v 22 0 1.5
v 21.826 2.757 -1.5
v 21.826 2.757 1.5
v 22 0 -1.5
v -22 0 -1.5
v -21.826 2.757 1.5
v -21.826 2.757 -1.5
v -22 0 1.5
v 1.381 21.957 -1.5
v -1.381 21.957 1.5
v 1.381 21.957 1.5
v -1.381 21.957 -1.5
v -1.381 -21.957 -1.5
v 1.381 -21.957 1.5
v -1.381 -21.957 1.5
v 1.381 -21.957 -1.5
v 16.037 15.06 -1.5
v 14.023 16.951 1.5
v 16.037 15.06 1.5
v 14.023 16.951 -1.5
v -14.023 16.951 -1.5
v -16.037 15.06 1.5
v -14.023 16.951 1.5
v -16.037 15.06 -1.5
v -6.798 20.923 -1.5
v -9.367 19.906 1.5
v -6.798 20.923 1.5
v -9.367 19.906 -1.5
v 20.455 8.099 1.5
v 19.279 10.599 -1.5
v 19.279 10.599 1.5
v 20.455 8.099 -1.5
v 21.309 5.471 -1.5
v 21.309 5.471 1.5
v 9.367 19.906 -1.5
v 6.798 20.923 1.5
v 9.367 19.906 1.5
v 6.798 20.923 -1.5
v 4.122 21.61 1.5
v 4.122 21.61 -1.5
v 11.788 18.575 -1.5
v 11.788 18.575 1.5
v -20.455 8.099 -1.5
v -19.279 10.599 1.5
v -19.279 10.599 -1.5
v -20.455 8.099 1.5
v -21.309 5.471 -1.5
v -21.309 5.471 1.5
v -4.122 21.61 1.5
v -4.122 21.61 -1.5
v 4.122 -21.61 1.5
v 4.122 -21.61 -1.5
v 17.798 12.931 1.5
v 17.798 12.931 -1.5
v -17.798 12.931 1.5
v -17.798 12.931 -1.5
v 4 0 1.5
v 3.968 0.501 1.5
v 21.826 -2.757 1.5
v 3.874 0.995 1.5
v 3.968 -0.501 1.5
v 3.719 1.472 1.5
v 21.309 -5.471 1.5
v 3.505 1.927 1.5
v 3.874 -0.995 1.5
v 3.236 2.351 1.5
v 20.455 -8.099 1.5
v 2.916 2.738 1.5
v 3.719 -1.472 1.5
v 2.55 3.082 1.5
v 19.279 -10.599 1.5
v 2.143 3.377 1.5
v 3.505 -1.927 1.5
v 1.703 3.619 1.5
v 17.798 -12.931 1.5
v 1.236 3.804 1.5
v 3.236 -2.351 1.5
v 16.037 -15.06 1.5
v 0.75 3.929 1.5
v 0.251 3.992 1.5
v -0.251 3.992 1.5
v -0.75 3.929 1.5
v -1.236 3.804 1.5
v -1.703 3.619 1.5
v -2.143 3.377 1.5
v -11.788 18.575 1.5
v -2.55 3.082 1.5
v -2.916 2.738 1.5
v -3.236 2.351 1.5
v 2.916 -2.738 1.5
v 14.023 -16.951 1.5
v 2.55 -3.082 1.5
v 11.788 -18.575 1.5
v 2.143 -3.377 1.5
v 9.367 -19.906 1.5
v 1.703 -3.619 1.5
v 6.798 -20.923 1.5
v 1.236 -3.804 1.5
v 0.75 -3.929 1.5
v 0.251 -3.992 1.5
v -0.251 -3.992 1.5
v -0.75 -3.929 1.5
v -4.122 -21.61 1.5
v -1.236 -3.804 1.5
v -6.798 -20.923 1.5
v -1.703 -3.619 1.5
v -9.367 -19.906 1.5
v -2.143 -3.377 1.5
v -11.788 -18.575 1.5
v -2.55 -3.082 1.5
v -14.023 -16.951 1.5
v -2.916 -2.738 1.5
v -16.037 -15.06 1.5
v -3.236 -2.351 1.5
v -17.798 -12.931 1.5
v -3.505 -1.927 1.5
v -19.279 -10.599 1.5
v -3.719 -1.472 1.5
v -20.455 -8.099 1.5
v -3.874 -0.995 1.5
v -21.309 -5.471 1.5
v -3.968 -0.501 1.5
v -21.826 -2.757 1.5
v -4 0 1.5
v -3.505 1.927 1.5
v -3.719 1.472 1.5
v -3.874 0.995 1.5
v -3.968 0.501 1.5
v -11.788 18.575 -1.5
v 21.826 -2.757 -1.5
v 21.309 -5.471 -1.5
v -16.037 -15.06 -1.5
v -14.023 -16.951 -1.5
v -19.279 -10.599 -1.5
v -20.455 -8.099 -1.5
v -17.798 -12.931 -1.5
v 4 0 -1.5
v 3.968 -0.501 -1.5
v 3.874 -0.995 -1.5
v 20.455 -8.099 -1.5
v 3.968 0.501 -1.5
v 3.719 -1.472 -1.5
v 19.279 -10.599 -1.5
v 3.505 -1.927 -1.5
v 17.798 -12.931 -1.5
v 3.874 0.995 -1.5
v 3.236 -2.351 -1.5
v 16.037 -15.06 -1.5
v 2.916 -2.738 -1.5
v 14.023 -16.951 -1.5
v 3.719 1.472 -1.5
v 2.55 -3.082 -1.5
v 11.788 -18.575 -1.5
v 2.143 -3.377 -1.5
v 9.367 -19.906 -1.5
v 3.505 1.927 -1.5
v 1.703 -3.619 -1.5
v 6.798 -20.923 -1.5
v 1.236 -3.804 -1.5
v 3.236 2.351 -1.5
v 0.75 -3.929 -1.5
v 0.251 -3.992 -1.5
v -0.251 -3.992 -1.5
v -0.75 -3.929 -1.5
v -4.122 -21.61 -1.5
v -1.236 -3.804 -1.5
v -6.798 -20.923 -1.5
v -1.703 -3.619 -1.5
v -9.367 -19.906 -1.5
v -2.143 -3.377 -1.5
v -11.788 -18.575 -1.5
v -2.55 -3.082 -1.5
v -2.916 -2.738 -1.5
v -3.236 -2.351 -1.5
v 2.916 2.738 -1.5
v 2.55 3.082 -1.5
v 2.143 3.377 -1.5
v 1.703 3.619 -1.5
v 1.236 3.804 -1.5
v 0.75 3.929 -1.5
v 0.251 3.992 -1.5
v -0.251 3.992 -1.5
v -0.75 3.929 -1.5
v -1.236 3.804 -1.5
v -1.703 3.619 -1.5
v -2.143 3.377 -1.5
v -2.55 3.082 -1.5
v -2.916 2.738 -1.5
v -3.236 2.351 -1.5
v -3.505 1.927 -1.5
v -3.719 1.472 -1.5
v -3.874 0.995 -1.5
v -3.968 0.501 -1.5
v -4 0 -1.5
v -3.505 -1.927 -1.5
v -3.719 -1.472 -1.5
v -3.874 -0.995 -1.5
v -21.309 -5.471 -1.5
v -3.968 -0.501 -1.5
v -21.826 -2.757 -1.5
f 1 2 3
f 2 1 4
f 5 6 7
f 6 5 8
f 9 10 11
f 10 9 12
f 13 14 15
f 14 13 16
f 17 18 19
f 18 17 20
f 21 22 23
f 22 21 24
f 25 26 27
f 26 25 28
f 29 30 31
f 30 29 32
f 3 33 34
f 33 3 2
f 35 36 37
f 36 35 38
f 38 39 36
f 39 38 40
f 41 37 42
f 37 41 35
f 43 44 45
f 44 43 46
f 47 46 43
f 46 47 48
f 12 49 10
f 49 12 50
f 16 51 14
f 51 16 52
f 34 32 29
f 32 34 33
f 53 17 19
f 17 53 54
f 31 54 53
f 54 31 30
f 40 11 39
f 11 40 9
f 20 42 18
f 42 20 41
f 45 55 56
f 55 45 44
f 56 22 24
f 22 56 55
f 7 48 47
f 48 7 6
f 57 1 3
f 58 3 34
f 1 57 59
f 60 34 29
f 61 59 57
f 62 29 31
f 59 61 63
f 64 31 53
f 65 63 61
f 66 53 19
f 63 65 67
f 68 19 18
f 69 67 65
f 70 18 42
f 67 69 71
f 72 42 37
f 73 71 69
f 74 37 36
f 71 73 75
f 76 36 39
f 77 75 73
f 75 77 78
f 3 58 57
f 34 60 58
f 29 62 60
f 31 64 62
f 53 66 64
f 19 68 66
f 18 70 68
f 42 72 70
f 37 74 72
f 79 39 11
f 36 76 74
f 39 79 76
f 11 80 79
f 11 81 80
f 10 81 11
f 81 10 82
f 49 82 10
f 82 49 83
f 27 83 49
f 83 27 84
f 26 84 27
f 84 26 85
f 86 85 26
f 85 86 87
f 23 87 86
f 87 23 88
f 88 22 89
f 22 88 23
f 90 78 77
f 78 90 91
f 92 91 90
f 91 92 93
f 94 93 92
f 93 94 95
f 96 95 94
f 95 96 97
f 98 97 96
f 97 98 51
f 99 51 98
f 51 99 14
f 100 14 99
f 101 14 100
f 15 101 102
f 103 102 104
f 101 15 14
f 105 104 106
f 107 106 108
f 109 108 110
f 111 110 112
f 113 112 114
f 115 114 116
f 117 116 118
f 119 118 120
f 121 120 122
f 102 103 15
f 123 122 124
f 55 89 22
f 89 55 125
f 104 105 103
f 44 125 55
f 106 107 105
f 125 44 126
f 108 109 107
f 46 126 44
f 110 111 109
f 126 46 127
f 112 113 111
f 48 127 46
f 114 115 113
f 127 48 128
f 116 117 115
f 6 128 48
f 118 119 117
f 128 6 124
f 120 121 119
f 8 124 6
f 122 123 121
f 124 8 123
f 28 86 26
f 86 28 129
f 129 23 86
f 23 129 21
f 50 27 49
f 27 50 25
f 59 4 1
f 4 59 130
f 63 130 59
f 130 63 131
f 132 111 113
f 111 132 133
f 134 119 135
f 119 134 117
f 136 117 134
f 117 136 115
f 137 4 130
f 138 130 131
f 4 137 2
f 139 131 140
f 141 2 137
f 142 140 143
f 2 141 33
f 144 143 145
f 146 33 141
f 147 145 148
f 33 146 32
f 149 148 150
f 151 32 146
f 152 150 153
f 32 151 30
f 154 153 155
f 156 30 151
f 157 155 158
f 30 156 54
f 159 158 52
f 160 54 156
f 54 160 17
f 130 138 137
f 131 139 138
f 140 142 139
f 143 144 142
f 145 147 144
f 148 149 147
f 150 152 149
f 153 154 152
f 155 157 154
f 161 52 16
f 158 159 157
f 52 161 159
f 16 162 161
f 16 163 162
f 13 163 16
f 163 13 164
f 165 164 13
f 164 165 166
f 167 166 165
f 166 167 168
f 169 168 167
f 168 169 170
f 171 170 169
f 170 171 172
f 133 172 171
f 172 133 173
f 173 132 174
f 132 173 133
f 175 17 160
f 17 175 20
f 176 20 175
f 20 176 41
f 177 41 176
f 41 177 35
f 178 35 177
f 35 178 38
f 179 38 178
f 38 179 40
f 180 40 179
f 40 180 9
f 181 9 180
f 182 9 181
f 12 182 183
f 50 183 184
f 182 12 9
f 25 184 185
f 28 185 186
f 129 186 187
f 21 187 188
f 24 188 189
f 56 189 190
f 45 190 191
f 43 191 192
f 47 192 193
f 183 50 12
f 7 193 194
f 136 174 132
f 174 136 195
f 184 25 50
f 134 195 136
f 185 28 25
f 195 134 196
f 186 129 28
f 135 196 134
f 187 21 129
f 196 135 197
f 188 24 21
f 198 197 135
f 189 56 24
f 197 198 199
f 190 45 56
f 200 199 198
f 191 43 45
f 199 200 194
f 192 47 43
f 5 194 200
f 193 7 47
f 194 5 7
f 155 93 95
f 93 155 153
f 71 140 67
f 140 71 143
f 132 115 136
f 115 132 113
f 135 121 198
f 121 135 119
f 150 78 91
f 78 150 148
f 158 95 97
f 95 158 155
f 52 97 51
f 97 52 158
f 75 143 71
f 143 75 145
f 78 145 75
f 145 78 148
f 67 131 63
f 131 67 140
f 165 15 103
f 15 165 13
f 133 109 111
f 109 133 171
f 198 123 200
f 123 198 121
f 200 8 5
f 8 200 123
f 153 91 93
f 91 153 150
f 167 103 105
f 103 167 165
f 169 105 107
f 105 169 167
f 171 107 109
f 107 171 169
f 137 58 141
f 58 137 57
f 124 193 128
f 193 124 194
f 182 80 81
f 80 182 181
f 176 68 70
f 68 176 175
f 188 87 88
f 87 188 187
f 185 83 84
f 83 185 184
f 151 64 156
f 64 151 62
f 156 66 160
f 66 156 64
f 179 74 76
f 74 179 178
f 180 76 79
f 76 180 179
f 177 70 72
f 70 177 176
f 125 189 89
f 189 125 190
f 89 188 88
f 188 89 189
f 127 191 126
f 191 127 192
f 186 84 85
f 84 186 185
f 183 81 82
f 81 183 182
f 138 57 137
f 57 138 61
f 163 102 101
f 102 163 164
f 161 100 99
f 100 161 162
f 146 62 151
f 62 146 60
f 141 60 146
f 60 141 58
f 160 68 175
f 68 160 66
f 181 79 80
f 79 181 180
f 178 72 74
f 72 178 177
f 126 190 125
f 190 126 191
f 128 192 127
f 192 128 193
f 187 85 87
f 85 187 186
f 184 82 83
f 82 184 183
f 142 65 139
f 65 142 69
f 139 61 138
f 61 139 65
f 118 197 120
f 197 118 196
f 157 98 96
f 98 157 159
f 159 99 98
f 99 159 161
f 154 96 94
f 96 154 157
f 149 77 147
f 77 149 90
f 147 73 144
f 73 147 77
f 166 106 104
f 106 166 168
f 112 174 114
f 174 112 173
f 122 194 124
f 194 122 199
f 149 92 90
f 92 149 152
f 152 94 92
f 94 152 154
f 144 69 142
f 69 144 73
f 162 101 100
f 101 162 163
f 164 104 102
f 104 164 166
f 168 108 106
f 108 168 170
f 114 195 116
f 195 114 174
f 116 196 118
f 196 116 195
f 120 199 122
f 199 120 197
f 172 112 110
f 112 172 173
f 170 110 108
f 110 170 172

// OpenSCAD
$fn = 50;


difference() {
	union() {
		translate(v = [0, 0, -1.5000000000]) {
			cylinder(h = 3, r = 22.0000000000);
		}
	}
	union() {
		translate(v = [0, 0, -100.0000000000]) {
			cylinder(h = 200, r = 4);
		}
	}
}
